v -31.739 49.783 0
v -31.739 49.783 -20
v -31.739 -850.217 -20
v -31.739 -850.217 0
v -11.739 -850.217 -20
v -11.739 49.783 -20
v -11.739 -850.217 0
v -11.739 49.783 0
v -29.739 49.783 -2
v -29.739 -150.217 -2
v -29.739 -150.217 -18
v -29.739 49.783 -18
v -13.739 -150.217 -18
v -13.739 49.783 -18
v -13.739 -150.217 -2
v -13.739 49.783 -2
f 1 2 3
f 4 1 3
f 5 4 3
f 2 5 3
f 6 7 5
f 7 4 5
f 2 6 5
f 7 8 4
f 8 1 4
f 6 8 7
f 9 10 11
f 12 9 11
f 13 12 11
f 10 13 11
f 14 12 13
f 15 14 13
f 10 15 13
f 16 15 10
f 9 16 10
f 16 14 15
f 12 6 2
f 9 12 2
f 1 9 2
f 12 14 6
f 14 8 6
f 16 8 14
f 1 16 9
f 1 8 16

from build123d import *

# Parameters (mm, degrees)
SKETCH1_W           = 20
SKETCH1_H           = 900
BOSS_EXTRUDE1_DEPTH = 20
SKETCH2_W           = 16
SKETCH2_H           = 16
CUT_EXTRUDE1_DEPTH  = 200


with BuildPart() as part:
    # Sketch1 → Boss-Extrude1 (new body)
    with BuildSketch(Plane.XY):
        with Locations((-21.739130435, -400.217391304)):
            Rectangle(SKETCH1_W, SKETCH1_H)
    extrude(amount=-BOSS_EXTRUDE1_DEPTH)

    # Sketch2 → Cut-Extrude1 (cut)
    with BuildSketch(Plane(origin=(0, 49.782608696, 0), x_dir=(1, 0, 0), z_dir=(0, 1, 0))):
        with Locations((-21.739130435, 10)):
            Rectangle(SKETCH2_W, SKETCH2_H)
    extrude(amount=-CUT_EXTRUDE1_DEPTH, mode=Mode.SUBTRACT)


solid = part.part
